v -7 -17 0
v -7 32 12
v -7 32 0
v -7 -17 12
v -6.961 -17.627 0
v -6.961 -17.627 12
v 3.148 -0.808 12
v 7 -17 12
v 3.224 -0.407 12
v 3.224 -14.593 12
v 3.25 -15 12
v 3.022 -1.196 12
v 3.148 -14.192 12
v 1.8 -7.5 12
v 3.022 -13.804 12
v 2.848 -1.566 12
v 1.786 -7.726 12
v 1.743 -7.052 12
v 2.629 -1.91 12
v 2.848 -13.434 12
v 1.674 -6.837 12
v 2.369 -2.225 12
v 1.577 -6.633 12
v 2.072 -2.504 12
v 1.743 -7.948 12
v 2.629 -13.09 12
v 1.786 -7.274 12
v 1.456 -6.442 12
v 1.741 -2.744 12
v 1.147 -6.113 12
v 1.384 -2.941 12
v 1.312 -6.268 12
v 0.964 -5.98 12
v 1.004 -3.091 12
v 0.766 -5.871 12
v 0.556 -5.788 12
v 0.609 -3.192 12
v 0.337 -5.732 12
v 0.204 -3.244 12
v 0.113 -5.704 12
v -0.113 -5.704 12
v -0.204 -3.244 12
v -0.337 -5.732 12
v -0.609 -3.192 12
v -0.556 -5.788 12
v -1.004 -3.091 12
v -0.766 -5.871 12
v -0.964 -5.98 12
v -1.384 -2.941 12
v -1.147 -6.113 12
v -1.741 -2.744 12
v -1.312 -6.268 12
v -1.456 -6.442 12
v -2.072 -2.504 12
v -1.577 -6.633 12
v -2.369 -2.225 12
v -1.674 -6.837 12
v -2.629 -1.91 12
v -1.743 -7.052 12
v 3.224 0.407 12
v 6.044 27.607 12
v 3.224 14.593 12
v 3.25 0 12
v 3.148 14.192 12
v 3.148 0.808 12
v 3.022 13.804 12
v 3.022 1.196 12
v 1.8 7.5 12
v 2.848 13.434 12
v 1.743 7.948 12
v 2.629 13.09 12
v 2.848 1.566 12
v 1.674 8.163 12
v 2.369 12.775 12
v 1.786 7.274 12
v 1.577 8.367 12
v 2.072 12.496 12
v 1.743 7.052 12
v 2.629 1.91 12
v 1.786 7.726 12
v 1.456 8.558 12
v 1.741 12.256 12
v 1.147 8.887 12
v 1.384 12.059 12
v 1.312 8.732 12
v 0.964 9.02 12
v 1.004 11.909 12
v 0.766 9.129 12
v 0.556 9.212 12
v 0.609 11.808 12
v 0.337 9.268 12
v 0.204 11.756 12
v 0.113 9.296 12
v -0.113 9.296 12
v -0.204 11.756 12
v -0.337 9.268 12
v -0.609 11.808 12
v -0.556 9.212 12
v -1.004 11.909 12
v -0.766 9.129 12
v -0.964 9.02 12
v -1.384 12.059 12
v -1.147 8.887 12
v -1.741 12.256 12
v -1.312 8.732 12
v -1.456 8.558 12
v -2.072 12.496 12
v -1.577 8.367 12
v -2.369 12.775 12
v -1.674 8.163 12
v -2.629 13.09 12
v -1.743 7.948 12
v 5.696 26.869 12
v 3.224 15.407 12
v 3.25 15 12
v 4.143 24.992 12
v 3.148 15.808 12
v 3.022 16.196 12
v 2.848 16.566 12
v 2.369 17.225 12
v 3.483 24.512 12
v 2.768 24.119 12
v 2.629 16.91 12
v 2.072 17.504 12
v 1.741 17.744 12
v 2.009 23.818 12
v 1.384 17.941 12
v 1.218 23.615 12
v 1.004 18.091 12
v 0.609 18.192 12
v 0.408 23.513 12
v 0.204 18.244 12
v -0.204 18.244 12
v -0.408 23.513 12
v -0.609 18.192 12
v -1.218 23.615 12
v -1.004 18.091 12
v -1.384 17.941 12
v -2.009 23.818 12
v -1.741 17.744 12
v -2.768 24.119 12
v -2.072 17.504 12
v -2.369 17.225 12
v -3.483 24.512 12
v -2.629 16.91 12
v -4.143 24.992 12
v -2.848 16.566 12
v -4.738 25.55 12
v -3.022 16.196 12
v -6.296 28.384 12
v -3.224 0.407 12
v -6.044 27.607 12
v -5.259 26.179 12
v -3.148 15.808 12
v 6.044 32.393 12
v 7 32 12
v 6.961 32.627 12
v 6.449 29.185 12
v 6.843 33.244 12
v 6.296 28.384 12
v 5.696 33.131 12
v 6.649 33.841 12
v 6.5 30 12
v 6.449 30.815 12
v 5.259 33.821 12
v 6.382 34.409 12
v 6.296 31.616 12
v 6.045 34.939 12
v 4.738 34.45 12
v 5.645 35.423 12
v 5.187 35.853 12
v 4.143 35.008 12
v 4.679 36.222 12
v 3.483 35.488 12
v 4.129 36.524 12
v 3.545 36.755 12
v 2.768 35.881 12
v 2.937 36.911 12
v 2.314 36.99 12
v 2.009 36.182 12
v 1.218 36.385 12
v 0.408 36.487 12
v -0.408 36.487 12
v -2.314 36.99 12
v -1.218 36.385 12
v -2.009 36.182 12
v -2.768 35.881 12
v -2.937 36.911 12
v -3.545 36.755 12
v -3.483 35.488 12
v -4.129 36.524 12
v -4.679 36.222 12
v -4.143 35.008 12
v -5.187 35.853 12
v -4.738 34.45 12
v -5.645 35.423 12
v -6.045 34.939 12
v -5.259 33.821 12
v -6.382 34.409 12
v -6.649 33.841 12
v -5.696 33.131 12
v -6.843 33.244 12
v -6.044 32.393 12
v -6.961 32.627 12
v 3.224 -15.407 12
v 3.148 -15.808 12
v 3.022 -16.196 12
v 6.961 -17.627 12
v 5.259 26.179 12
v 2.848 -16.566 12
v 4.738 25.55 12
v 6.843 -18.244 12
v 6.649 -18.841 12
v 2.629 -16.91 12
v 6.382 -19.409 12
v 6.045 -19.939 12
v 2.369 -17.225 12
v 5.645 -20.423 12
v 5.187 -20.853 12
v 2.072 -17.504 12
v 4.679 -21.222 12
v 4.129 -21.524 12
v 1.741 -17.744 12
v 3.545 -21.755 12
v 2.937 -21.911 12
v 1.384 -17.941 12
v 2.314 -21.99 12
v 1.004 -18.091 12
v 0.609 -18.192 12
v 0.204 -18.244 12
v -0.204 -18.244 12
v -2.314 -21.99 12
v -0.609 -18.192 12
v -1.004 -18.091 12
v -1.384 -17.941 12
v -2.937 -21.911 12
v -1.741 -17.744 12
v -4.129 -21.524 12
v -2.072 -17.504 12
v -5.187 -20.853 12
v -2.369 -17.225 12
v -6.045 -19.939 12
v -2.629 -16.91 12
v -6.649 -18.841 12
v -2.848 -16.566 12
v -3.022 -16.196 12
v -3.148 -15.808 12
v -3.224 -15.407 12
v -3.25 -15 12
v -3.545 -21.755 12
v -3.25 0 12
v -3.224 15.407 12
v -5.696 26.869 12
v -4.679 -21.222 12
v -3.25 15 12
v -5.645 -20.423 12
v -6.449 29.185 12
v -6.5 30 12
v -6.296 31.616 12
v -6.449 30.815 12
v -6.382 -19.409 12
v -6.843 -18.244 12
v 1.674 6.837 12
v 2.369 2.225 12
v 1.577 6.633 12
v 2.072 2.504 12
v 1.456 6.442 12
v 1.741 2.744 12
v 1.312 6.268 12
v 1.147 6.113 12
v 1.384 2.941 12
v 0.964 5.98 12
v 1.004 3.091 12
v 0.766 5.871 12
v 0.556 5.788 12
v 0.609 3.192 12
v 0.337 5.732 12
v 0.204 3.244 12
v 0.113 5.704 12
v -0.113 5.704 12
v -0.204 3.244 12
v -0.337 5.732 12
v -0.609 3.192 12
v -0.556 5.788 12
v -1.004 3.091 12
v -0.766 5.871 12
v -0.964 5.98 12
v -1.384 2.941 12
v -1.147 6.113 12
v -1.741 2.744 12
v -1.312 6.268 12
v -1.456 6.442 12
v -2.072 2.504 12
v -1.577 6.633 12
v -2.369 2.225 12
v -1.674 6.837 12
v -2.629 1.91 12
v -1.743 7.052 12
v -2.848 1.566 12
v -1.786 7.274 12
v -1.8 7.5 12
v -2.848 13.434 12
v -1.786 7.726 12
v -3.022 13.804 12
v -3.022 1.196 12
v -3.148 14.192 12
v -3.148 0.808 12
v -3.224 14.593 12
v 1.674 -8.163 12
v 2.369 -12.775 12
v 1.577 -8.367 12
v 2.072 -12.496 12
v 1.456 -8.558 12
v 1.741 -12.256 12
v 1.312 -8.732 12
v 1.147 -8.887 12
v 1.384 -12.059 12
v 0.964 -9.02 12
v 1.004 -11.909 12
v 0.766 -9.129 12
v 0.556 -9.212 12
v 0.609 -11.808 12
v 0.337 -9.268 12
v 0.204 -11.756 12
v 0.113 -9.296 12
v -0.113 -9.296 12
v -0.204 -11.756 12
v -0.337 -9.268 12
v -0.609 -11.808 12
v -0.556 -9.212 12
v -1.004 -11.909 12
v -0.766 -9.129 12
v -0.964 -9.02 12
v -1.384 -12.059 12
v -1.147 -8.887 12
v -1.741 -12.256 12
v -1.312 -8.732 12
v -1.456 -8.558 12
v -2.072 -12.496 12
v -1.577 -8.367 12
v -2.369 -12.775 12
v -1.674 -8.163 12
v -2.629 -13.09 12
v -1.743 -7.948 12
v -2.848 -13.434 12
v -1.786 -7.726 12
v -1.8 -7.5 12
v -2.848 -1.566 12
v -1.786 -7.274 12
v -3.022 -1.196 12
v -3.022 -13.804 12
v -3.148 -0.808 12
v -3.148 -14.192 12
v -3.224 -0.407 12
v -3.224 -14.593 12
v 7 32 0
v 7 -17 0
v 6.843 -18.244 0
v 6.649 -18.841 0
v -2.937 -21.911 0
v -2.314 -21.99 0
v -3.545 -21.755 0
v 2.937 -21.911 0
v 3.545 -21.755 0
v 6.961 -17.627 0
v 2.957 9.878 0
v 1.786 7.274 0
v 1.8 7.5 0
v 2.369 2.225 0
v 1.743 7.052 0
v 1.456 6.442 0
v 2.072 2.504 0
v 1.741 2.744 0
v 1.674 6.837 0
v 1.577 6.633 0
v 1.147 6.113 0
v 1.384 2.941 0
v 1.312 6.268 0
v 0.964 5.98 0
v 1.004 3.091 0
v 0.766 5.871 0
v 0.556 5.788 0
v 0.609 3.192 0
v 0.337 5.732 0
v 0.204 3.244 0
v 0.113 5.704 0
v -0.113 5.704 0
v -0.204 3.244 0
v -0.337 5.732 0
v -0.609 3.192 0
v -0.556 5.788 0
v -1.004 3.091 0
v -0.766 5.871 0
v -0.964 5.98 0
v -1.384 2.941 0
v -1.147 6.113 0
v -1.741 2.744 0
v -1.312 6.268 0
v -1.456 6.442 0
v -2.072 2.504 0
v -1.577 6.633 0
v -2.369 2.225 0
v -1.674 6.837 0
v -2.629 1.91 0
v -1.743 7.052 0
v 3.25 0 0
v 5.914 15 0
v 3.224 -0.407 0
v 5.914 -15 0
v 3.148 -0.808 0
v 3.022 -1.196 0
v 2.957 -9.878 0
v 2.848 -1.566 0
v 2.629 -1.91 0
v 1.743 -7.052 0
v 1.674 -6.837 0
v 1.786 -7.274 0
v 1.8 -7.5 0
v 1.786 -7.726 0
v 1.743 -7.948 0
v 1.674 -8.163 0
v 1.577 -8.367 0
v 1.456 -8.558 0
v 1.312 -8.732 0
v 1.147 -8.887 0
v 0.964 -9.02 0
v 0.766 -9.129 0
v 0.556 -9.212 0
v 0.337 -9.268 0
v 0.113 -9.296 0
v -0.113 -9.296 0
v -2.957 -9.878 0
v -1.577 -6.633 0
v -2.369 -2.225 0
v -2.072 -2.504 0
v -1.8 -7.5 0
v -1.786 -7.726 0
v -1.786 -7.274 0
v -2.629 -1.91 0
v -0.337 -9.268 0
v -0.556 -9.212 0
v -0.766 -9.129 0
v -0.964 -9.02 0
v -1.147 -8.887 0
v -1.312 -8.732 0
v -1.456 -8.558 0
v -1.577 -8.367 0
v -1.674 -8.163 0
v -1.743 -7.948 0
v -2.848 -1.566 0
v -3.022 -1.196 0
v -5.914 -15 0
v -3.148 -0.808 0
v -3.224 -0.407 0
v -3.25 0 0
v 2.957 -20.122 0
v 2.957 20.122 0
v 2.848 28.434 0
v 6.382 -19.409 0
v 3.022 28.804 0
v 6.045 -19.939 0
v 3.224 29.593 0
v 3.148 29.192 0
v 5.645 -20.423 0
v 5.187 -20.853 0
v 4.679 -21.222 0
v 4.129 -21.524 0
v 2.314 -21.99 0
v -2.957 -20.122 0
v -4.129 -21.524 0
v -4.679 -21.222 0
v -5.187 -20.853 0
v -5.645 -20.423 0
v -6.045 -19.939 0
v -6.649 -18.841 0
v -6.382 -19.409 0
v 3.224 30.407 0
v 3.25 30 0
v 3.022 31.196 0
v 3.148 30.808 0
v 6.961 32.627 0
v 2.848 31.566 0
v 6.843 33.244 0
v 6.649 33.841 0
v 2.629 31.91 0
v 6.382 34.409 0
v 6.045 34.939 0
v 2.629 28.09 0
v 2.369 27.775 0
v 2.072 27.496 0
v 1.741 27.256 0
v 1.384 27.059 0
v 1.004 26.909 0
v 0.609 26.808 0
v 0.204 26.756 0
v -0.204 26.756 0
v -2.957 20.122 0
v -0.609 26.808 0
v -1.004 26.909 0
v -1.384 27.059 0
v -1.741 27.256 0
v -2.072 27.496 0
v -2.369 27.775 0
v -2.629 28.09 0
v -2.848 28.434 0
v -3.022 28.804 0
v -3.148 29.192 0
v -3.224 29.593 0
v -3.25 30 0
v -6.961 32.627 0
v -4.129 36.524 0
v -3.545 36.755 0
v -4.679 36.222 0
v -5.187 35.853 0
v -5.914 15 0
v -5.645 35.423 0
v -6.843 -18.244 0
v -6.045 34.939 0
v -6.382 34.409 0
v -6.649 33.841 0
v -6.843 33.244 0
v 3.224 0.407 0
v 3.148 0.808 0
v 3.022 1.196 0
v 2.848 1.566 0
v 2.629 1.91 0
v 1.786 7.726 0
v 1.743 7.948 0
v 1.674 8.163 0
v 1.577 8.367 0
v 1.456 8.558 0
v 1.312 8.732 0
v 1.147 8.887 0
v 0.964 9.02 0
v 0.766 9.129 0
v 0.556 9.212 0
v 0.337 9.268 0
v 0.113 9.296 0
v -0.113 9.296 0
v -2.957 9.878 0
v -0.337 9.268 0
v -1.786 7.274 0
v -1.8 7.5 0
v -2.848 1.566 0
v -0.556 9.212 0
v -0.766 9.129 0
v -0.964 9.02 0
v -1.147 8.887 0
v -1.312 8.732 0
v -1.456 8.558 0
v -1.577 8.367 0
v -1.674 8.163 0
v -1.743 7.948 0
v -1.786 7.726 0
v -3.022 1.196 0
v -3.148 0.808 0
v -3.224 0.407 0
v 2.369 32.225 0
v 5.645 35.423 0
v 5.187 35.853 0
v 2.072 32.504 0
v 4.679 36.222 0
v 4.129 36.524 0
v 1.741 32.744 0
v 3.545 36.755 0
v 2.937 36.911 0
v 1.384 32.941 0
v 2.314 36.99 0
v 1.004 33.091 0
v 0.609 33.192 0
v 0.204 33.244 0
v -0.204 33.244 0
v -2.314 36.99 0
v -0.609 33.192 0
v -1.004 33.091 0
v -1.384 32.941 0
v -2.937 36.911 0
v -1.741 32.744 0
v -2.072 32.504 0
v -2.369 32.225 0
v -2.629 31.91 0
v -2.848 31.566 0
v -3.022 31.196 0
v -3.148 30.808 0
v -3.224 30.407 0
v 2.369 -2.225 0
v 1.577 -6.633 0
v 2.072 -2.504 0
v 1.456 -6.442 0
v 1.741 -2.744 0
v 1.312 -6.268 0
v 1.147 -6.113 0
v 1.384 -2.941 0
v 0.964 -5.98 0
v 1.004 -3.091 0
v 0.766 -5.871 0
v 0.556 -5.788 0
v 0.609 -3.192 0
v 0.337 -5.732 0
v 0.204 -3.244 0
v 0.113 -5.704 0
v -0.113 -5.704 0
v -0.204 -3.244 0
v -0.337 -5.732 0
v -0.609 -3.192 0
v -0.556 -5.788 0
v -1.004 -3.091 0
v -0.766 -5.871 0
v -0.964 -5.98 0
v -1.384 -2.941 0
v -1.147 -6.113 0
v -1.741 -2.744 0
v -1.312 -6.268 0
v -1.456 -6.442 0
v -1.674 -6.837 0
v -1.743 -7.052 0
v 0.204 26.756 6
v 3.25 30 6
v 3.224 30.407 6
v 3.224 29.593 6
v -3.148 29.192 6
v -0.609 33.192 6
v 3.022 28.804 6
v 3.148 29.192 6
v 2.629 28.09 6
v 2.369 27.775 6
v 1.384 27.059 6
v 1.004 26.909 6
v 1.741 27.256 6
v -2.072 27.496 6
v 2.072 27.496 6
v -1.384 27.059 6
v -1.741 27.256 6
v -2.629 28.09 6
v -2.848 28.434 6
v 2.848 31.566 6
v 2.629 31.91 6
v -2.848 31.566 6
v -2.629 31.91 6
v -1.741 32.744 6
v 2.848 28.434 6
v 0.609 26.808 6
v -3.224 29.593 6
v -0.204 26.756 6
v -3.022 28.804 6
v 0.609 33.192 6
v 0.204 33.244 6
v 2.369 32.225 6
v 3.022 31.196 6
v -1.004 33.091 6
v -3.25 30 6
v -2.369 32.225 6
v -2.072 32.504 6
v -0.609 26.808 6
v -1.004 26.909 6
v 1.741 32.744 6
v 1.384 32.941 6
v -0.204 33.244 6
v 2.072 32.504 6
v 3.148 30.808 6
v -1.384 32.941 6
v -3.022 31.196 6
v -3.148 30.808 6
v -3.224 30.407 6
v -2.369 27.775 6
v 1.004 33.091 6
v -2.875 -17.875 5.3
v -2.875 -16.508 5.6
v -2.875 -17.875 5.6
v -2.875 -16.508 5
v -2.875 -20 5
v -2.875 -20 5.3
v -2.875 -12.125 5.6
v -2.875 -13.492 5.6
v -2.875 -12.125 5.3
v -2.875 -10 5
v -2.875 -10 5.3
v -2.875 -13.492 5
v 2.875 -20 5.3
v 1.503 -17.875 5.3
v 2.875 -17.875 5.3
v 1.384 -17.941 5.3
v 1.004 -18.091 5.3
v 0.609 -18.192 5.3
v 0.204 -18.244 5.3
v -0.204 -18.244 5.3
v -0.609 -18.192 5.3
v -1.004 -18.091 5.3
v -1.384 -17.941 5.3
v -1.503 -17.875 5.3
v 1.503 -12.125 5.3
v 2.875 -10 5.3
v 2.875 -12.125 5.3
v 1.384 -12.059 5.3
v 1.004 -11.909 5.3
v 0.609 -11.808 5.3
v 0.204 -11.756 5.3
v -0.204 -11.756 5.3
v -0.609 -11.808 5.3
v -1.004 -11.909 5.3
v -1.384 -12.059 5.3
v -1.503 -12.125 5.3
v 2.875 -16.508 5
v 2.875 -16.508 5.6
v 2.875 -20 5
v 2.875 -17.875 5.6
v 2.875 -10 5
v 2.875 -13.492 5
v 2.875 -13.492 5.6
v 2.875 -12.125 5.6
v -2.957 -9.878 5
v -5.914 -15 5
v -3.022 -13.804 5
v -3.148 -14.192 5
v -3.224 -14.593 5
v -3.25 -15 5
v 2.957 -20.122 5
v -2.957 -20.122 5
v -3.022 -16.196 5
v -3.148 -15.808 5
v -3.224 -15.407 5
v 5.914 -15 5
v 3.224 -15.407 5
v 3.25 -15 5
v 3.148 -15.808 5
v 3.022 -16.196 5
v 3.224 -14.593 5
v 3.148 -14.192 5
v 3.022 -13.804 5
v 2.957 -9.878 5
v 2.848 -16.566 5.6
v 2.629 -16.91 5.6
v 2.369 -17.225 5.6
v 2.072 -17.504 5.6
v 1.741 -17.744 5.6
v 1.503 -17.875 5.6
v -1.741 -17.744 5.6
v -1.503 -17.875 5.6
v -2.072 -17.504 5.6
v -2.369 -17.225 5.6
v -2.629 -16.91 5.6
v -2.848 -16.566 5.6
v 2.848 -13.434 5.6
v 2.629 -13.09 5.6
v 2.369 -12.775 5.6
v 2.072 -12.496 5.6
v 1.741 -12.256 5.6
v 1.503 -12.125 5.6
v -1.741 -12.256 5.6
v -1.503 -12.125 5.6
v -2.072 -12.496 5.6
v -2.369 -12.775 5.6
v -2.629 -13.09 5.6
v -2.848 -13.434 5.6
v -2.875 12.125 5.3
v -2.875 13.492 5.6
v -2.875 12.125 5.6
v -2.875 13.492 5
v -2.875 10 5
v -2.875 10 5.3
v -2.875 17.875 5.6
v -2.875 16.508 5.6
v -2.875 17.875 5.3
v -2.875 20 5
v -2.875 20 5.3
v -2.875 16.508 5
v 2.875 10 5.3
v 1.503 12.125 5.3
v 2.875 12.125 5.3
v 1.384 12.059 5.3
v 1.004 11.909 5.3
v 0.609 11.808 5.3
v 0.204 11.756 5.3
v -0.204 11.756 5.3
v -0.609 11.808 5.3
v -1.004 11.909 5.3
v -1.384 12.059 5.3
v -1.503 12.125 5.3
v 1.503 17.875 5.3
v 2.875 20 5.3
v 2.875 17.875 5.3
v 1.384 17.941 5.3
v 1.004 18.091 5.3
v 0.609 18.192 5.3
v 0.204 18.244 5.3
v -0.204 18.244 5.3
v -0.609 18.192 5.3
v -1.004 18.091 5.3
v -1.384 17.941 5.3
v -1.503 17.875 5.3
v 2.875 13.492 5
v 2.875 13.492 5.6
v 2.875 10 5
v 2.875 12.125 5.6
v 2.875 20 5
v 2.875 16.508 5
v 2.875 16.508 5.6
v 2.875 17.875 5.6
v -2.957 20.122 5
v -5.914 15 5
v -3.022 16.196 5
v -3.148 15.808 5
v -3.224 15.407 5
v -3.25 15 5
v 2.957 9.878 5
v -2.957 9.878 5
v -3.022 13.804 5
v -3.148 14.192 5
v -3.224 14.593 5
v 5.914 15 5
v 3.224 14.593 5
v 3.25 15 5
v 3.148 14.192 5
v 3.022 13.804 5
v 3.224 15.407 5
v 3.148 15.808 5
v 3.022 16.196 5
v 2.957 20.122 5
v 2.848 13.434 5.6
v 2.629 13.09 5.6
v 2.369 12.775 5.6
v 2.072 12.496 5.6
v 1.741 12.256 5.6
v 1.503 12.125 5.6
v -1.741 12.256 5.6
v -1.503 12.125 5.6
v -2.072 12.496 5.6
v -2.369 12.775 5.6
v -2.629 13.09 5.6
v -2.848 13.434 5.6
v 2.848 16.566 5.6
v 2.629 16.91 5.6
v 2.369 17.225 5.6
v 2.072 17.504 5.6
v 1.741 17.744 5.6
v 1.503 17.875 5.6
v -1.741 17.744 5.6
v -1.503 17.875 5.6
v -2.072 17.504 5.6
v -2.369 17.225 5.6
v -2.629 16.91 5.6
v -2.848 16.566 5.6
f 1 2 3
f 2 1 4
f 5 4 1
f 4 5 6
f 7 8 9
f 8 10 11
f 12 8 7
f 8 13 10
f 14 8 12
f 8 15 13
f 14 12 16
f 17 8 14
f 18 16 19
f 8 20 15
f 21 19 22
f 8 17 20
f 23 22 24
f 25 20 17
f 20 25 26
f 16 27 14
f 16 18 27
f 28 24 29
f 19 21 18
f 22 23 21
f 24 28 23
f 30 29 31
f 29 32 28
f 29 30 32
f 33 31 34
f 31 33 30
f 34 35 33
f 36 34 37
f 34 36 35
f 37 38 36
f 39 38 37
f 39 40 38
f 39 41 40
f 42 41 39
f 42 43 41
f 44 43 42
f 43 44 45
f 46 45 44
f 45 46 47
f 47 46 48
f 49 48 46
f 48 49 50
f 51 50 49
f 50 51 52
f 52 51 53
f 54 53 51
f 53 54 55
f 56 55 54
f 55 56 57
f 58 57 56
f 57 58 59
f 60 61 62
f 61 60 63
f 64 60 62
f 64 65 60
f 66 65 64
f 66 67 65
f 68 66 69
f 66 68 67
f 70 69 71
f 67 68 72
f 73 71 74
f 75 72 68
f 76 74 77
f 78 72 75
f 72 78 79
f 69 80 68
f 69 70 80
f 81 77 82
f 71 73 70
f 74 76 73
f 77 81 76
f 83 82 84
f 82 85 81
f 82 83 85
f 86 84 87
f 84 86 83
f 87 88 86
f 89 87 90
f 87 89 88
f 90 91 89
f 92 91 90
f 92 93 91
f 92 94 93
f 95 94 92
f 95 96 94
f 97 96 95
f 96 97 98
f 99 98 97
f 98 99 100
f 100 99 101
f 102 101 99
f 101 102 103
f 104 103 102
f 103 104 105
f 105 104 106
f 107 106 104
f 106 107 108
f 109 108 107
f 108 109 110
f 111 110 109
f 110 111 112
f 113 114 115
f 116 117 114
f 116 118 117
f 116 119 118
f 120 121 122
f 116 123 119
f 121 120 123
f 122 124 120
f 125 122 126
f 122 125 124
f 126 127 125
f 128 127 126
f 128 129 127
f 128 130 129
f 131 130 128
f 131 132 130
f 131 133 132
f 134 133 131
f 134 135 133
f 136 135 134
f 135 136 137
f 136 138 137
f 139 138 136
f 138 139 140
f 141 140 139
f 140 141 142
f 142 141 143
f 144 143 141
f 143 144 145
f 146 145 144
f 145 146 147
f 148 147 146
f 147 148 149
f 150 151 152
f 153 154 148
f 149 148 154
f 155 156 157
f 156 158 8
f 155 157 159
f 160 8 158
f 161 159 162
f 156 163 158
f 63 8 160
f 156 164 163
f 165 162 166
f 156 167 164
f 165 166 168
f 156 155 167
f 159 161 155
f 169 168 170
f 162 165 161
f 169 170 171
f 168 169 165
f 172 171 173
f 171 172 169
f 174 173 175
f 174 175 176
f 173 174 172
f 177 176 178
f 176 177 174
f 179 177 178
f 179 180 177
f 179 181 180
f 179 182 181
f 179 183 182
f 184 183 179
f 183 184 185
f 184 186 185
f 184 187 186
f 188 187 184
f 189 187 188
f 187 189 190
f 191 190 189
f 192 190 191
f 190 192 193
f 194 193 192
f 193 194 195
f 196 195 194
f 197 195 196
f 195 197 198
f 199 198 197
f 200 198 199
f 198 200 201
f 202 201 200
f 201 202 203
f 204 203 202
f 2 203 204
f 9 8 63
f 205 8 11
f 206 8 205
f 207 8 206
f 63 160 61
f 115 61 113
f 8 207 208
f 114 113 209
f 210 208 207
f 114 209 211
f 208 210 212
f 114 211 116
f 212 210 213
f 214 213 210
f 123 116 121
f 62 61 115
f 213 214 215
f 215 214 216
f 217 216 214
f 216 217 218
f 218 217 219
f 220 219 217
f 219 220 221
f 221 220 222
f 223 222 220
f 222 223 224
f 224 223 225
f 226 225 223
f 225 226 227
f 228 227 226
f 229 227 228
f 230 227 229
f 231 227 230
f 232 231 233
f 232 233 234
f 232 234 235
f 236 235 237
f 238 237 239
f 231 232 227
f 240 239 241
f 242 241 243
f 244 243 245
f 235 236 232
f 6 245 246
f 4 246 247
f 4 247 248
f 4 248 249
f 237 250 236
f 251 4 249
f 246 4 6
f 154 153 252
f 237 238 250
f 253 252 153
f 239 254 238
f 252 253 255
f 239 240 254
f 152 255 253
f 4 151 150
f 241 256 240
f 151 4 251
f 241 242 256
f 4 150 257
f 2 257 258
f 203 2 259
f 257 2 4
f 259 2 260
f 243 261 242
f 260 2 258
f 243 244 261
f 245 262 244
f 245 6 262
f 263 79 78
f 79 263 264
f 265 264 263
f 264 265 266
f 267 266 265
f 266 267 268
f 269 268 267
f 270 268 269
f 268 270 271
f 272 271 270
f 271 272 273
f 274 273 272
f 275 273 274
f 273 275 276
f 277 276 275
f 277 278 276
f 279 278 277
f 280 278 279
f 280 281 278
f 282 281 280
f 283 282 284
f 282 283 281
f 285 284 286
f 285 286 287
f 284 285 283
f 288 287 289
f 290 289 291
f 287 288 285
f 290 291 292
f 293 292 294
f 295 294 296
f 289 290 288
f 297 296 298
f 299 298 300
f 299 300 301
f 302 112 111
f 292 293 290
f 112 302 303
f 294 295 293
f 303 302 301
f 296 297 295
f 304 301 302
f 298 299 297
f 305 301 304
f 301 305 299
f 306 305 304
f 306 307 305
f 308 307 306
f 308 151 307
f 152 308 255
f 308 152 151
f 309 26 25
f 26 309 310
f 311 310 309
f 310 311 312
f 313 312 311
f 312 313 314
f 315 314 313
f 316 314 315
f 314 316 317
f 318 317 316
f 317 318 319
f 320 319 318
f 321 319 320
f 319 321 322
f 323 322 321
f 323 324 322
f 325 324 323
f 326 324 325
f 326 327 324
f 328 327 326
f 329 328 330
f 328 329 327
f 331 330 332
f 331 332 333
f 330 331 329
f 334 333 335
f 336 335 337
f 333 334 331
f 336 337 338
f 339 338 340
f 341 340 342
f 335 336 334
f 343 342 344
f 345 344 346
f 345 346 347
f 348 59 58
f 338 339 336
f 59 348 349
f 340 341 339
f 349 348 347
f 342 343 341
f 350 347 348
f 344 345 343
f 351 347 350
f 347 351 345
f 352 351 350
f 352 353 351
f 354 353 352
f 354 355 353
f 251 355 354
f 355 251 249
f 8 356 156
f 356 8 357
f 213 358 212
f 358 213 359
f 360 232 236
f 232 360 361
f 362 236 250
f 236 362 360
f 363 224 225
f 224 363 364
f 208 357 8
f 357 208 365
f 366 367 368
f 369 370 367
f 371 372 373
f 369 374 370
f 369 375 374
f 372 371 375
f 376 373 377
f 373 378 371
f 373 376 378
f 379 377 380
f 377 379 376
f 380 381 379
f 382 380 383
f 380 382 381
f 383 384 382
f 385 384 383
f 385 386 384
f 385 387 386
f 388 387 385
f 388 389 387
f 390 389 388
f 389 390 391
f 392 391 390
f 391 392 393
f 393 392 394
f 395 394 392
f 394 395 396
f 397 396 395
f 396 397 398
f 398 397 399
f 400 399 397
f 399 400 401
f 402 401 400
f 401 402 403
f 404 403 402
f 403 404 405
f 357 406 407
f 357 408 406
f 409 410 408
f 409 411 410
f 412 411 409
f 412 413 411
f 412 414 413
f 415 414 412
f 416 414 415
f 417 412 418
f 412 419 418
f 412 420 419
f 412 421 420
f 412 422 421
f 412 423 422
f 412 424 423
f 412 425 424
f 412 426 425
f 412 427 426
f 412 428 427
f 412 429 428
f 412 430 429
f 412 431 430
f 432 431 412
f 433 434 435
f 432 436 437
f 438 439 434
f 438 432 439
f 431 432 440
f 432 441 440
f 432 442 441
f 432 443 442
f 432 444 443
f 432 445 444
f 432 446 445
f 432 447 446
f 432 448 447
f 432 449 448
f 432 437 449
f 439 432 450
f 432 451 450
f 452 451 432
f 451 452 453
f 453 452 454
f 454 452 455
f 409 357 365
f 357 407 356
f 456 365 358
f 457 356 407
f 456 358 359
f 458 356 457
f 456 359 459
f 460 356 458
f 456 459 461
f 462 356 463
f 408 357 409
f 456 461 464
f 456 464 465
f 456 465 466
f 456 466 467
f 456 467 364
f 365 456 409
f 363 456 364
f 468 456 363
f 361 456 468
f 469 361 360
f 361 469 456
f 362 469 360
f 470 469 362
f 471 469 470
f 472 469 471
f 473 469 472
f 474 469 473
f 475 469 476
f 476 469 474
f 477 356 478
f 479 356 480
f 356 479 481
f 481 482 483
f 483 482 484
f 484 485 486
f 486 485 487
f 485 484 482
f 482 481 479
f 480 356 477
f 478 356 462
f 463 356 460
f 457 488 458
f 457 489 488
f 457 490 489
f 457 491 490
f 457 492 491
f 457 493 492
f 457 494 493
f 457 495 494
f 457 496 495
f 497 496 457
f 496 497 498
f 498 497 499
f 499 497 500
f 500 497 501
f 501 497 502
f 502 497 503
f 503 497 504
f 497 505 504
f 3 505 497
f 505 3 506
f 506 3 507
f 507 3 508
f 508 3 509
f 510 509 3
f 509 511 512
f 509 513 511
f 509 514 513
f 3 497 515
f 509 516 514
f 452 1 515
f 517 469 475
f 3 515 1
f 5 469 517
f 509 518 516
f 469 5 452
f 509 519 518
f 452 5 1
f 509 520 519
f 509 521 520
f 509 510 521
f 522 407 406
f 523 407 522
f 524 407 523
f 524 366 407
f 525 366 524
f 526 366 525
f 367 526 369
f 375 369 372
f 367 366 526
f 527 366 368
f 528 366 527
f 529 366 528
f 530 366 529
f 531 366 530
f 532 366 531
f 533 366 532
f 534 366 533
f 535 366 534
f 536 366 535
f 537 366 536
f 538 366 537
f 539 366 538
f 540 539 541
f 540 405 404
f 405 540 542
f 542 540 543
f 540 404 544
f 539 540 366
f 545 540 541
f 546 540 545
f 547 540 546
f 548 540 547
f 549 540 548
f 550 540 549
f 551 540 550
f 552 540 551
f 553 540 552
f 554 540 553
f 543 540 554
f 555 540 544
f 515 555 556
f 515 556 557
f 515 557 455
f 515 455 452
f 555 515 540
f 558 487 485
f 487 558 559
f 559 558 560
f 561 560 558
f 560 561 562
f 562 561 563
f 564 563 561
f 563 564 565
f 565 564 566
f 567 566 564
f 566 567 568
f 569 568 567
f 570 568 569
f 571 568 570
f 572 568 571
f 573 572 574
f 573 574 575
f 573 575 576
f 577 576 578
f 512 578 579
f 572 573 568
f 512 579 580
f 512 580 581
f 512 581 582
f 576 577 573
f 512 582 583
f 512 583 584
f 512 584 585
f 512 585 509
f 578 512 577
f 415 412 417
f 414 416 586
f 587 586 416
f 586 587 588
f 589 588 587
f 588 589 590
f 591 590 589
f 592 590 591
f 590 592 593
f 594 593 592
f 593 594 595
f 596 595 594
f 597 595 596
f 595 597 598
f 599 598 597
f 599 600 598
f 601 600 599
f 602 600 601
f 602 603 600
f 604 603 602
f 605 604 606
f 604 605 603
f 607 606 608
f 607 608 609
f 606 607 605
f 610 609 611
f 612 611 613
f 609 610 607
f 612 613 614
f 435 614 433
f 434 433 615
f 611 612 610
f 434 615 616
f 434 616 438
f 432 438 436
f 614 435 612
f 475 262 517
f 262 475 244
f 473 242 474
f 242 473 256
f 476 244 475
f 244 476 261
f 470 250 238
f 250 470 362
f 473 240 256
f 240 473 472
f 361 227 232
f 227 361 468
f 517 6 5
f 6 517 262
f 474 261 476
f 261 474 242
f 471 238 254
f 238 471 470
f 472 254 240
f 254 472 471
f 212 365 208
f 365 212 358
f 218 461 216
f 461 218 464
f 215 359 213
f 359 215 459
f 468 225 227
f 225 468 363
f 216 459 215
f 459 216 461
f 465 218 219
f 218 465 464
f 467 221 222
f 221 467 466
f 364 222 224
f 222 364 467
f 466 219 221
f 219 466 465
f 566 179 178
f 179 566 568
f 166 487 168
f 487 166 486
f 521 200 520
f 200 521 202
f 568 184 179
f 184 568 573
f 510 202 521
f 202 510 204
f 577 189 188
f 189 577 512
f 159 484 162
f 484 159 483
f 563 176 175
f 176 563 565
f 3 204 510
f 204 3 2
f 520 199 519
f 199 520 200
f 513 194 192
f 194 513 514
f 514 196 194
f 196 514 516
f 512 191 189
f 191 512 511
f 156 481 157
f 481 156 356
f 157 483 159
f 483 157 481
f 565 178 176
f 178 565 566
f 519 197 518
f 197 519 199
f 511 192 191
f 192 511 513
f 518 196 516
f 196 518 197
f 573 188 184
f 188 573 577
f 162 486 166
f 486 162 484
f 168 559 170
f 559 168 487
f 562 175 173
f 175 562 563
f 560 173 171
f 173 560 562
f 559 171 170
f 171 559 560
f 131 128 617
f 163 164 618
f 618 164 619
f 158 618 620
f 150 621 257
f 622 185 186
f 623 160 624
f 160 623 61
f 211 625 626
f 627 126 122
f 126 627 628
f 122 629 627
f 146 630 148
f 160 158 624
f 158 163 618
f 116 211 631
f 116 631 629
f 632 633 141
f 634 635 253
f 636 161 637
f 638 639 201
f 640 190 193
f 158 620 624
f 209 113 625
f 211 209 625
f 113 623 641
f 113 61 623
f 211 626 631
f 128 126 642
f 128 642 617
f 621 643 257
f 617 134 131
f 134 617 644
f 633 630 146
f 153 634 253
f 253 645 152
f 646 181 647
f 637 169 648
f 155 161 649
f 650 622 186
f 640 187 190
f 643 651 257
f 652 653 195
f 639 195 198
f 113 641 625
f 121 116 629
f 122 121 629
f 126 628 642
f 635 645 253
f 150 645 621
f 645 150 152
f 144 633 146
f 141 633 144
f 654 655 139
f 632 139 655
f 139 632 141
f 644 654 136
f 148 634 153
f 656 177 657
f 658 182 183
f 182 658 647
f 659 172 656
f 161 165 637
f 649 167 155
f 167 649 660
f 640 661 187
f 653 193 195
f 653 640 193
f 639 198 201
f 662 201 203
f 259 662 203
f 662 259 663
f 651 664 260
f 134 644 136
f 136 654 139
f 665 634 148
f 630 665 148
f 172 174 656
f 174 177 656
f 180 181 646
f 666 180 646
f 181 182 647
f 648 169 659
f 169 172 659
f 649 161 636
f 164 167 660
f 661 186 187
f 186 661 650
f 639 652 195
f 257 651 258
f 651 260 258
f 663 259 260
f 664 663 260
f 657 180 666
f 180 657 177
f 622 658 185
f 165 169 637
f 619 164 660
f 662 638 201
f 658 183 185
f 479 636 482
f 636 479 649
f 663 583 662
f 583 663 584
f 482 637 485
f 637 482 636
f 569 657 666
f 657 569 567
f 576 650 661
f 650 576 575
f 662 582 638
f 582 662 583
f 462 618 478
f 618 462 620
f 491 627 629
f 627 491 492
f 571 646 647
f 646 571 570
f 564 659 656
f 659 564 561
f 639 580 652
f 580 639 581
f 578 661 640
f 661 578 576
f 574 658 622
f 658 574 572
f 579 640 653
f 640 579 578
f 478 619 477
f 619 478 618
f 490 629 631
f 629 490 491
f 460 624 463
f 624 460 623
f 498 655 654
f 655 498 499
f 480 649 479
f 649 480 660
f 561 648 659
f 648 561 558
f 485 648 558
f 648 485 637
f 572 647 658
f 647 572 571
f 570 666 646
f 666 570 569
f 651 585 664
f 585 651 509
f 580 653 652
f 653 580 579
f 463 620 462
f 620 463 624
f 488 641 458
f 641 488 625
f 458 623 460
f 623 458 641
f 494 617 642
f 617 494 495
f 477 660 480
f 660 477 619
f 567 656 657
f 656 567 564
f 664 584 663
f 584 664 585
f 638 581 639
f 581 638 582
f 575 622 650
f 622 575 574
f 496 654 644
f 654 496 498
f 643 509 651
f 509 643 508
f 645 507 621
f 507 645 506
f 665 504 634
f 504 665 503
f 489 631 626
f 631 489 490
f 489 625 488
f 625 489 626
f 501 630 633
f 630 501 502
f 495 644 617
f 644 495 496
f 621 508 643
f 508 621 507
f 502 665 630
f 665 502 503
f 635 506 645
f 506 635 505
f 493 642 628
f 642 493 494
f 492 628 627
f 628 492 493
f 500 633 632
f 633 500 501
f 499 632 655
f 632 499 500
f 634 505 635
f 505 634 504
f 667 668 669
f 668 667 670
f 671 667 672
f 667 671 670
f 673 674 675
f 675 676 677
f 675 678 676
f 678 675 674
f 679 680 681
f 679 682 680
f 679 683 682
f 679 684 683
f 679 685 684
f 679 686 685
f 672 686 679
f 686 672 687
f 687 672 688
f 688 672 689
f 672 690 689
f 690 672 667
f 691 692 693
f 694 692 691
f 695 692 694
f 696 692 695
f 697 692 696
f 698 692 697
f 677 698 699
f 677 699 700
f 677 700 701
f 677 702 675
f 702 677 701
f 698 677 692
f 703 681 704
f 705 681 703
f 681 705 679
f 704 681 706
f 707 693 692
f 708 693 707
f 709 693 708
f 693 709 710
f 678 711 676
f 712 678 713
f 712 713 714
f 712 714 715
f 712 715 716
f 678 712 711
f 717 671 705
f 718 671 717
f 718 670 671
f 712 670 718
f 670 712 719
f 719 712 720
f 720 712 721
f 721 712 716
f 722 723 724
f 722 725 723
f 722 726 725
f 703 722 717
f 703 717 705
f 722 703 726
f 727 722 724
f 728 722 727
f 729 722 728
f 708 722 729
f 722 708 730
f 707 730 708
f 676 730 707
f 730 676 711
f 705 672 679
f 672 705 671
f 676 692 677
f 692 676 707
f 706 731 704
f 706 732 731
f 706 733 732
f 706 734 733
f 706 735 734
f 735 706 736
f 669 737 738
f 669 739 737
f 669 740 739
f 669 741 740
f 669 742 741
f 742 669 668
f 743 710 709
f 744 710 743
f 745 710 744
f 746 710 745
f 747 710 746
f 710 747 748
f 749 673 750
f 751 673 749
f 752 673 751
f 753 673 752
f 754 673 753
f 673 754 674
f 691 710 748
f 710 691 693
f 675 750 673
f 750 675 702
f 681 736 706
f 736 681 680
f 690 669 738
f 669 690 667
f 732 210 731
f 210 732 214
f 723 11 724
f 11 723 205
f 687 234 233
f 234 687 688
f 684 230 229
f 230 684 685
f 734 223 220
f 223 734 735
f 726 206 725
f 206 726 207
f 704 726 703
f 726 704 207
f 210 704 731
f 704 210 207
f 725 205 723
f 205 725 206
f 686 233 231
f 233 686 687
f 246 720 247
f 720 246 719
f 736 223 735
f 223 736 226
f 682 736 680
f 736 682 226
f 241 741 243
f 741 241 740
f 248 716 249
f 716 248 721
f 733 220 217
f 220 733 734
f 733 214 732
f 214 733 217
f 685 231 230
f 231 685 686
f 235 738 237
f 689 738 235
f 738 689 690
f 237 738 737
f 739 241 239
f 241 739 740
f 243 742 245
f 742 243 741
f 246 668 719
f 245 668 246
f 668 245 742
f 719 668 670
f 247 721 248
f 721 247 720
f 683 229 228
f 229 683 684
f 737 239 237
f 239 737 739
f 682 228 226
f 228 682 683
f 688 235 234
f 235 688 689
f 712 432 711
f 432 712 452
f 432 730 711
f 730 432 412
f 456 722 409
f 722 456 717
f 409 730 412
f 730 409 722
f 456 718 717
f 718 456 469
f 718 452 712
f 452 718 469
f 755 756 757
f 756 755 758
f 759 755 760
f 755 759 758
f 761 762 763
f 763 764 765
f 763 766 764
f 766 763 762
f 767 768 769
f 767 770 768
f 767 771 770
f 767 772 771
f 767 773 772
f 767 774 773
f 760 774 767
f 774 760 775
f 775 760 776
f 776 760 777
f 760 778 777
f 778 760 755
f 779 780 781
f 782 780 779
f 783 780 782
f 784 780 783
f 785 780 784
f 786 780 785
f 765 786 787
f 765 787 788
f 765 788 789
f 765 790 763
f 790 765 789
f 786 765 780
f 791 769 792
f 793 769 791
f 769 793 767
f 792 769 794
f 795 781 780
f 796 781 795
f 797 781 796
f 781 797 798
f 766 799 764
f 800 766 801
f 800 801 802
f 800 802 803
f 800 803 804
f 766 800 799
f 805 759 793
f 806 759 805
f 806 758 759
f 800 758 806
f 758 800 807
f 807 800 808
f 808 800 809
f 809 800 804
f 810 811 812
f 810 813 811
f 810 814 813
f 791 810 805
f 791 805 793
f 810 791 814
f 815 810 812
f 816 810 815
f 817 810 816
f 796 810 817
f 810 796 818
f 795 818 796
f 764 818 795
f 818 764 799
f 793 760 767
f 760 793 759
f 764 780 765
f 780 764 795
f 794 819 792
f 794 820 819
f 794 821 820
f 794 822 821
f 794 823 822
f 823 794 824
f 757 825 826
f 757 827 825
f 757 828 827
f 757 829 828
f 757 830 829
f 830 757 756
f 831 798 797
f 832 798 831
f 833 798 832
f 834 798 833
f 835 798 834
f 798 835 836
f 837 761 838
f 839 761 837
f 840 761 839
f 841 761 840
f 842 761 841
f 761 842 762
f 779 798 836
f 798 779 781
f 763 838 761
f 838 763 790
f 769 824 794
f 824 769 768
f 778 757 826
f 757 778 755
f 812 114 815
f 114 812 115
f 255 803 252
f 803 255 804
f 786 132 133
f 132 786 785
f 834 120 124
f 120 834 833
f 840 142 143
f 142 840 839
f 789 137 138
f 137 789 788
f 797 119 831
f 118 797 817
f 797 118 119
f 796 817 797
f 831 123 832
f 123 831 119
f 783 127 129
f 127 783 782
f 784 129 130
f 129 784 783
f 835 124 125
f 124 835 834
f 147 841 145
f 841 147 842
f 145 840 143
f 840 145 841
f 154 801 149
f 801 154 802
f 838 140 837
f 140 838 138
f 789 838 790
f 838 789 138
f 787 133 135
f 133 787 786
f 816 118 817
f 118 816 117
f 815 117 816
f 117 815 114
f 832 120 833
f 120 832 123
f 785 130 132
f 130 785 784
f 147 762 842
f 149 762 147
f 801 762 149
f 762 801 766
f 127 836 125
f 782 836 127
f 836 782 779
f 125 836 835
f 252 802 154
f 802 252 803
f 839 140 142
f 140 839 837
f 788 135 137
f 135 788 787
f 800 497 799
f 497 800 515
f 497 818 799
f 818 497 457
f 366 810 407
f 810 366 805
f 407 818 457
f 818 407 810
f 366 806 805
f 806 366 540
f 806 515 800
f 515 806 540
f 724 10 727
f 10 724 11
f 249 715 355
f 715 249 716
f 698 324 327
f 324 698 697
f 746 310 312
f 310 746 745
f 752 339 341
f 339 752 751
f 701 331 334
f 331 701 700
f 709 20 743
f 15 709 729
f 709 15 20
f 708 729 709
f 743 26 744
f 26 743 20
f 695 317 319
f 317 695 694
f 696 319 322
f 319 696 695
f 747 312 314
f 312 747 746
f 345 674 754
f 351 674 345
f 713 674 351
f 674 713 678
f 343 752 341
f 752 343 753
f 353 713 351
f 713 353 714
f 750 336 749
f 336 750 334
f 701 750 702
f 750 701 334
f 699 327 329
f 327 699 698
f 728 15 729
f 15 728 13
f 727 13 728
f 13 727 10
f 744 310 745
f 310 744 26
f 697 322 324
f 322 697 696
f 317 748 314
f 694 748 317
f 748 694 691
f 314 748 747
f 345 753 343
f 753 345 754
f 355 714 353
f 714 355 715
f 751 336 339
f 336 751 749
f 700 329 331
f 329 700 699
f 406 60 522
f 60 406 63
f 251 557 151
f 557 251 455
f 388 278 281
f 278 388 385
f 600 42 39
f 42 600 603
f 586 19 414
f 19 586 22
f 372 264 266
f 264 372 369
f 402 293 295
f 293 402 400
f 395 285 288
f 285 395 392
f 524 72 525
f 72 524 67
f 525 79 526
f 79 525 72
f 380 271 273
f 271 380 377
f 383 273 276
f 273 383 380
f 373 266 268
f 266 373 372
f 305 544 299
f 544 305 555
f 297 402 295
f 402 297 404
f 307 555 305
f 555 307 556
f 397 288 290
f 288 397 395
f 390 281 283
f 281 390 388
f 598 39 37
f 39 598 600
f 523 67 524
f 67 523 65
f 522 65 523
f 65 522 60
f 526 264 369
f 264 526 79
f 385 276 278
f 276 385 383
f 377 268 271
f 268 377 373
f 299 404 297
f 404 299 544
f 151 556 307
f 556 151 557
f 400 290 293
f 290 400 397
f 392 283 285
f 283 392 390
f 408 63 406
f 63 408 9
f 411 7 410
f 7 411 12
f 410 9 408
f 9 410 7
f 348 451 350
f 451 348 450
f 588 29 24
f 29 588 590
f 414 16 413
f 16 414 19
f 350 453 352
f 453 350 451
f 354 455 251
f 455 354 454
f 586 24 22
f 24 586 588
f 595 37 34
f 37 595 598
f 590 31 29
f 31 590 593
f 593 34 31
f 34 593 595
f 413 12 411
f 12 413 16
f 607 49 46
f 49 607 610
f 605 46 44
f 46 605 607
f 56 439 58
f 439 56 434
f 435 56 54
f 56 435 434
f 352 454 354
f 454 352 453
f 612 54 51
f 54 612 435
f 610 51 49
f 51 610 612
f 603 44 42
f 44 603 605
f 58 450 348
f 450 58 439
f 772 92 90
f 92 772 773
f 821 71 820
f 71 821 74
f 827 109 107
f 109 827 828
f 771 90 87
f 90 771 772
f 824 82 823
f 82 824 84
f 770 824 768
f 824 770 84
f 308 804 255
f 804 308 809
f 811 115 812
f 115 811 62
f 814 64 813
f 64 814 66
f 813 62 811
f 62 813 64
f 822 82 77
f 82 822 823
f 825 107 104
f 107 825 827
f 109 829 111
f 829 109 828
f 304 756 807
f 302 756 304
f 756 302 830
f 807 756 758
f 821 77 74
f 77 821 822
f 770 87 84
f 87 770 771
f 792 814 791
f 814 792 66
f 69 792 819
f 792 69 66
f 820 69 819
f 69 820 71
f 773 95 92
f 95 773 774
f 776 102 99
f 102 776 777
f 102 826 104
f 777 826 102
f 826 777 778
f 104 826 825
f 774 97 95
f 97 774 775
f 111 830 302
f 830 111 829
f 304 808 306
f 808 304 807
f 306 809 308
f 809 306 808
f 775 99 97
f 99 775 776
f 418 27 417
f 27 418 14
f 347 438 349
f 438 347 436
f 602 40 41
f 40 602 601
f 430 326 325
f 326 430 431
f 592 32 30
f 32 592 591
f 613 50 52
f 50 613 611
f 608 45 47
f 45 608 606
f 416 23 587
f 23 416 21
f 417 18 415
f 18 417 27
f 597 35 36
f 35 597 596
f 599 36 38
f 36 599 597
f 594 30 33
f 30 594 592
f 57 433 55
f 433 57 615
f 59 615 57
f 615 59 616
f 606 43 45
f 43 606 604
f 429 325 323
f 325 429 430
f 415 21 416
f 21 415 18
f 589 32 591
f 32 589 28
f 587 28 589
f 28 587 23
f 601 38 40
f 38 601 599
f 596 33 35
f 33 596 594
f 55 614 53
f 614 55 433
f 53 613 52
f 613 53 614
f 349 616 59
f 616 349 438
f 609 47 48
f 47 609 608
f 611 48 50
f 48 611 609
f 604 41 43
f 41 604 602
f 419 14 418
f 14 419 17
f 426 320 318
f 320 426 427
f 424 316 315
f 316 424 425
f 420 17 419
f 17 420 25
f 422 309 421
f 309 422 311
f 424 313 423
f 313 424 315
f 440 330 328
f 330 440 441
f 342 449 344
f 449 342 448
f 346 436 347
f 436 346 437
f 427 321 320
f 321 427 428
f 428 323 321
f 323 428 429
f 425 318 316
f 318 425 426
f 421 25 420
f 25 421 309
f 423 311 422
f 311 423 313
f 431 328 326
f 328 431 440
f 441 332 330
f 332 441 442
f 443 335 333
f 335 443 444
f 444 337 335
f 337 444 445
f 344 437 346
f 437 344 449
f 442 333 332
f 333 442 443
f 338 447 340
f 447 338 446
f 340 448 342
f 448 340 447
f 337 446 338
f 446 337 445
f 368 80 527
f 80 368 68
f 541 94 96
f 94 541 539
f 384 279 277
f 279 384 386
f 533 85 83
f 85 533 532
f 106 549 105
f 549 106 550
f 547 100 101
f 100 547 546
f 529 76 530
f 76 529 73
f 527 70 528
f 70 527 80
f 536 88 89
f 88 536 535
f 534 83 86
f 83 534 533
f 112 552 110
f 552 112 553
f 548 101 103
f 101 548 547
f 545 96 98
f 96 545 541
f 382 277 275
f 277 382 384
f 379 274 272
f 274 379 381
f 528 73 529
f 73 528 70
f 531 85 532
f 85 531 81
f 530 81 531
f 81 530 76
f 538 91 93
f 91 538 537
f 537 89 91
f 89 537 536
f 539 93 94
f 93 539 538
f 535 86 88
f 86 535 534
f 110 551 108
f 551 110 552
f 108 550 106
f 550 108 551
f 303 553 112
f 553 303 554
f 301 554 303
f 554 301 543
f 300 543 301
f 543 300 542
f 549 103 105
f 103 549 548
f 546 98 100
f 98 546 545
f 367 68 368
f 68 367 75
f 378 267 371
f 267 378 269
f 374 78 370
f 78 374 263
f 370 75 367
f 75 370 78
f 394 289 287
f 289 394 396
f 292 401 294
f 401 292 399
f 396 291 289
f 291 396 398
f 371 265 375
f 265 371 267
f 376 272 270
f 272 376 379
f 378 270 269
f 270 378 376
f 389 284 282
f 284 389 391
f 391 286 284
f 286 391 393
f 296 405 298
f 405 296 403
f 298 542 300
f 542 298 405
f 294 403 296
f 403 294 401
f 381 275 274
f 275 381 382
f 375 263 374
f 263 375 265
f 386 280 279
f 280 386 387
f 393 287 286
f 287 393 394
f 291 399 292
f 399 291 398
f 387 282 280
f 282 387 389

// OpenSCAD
$fn = 50;


difference() {
	union() {
		hull() {
			translate(v = [-2.0000000000, 17.0000000000, 0]) {
				cylinder(h = 12, r = 5);
			}
			translate(v = [2.0000000000, 17.0000000000, 0]) {
				cylinder(h = 12, r = 5);
			}
			translate(v = [-2.0000000000, -17.0000000000, 0]) {
				cylinder(h = 12, r = 5);
			}
			translate(v = [2.0000000000, -17.0000000000, 0]) {
				cylinder(h = 12, r = 5);
			}
		}
		translate(v = [0.0000000000, 22.5000000000, 0]) {
			hull() {
				translate(v = [-2.0000000000, 9.5000000000, 0]) {
					cylinder(h = 12, r = 5);
				}
				translate(v = [2.0000000000, 9.5000000000, 0]) {
					cylinder(h = 12, r = 5);
				}
				translate(v = [-2.0000000000, -9.5000000000, 0]) {
					cylinder(h = 12, r = 5);
				}
				translate(v = [2.0000000000, -9.5000000000, 0]) {
					cylinder(h = 12, r = 5);
				}
			}
		}
		translate(v = [0.0000000000, 22.5000000000, 0]) {
			hull() {
				translate(v = [-2.0000000000, 9.5000000000, 0]) {
					cylinder(h = 12, r = 5);
				}
				translate(v = [2.0000000000, 9.5000000000, 0]) {
					cylinder(h = 12, r = 5);
				}
				translate(v = [-2.0000000000, -9.5000000000, 0]) {
					cylinder(h = 12, r = 5);
				}
				translate(v = [2.0000000000, -9.5000000000, 0]) {
					cylinder(h = 12, r = 5);
				}
			}
		}
	}
	union() {
		translate(v = [0.0000000000, 30.0000000000, 12]) {
			rotate(a = [0, 0, 0]) {
				difference() {
					union() {
						#translate(v = [0, 0, -12.0000000000]) {
							cylinder(h = 12, r = 2.2500000000);
						}
						#translate(v = [0, 0, -6]) {
							cylinder(h = 6, r1 = 3.2500000000, r2 = 6.5000000000);
						}
						#translate(v = [0, 0, -12.0000000000]) {
							cylinder(h = 12, r = 3.2500000000);
						}
						#translate(v = [0, 0, -12.0000000000]) {
							cylinder(h = 12, r = 2.2500000000);
						}
					}
					union();
				}
			}
		}
		translate(v = [0.0000000000, 30.0000000000, 12]) {
			rotate(a = [0, 0, 0]) {
				difference() {
					union() {
						#translate(v = [0, 0, -12.0000000000]) {
							cylinder(h = 12, r = 2.2500000000);
						}
						#translate(v = [0, 0, -6]) {
							cylinder(h = 6, r1 = 3.2500000000, r2 = 6.5000000000);
						}
						#translate(v = [0, 0, -12.0000000000]) {
							cylinder(h = 12, r = 3.2500000000);
						}
						#translate(v = [0, 0, -12.0000000000]) {
							cylinder(h = 12, r = 2.2500000000);
						}
					}
					union();
				}
			}
		}
		translate(v = [0.0000000000, -15.0000000000, 0]) {
			rotate(a = [0, 0, 0]) {
				difference() {
					union() {
						#translate(v = [-2.8750000000, -5.0000000000, -0.3000000000]) {
							cube(size = [5.7500000000, 10, 0.3000000000]);
						}
						#translate(v = [-2.8750000000, -2.8750000000, -0.6000000000]) {
							cube(size = [5.7500000000, 5.7500000000, 0.3000000000]);
						}
						#translate(v = [-2.8750000000, -5.0000000000, 5]) {
							cube(size = [5.7500000000, 10, 0.3000000000]);
						}
						#translate(v = [-2.8750000000, -2.8750000000, 5.3000000000]) {
							cube(size = [5.7500000000, 5.7500000000, 0.3000000000]);
						}
						#translate(v = [0, 0, -100.0000000000]) {
							cylinder(h = 200, r = 3.2500000000);
						}
						#linear_extrude(height = 5) {
							polygon(points = [[5.9142500000, 0.0000000000], [2.9571250000, 5.1218907443], [-2.9571250000, 5.1218907443], [-5.9142500000, 0.0000000000], [-2.9571250000, -5.1218907443], [2.9571250000, -5.1218907443]]);
						}
						#translate(v = [-2.8750000000, -5.0000000000, -0.3000000000]) {
							cube(size = [5.7500000000, 10, 0.3000000000]);
						}
						#translate(v = [-2.8750000000, -2.8750000000, -0.6000000000]) {
							cube(size = [5.7500000000, 5.7500000000, 0.3000000000]);
						}
						#translate(v = [-2.8750000000, -5.0000000000, 5]) {
							cube(size = [5.7500000000, 10, 0.3000000000]);
						}
						#translate(v = [-2.8750000000, -2.8750000000, 5.3000000000]) {
							cube(size = [5.7500000000, 5.7500000000, 0.3000000000]);
						}
						#translate(v = [0, 0, -100.0000000000]) {
							cylinder(h = 200, r = 3.2500000000);
						}
						#translate(v = [-2.8750000000, -5.0000000000, -0.3000000000]) {
							cube(size = [5.7500000000, 10, 0.3000000000]);
						}
						#translate(v = [-2.8750000000, -2.8750000000, -0.6000000000]) {
							cube(size = [5.7500000000, 5.7500000000, 0.3000000000]);
						}
						#translate(v = [-2.8750000000, -5.0000000000, 5]) {
							cube(size = [5.7500000000, 10, 0.3000000000]);
						}
						#translate(v = [-2.8750000000, -2.8750000000, 5.3000000000]) {
							cube(size = [5.7500000000, 5.7500000000, 0.3000000000]);
						}
						#translate(v = [0, 0, -100.0000000000]) {
							cylinder(h = 200, r = 3.2500000000);
						}
					}
					union();
				}
			}
		}
		translate(v = [0.0000000000, 15.0000000000, 0]) {
			rotate(a = [0, 0, 0]) {
				difference() {
					union() {
						#translate(v = [-2.8750000000, -5.0000000000, -0.3000000000]) {
							cube(size = [5.7500000000, 10, 0.3000000000]);
						}
						#translate(v = [-2.8750000000, -2.8750000000, -0.6000000000]) {
							cube(size = [5.7500000000, 5.7500000000, 0.3000000000]);
						}
						#translate(v = [-2.8750000000, -5.0000000000, 5]) {
							cube(size = [5.7500000000, 10, 0.3000000000]);
						}
						#translate(v = [-2.8750000000, -2.8750000000, 5.3000000000]) {
							cube(size = [5.7500000000, 5.7500000000, 0.3000000000]);
						}
						#translate(v = [0, 0, -100.0000000000]) {
							cylinder(h = 200, r = 3.2500000000);
						}
						#linear_extrude(height = 5) {
							polygon(points = [[5.9142500000, 0.0000000000], [2.9571250000, 5.1218907443], [-2.9571250000, 5.1218907443], [-5.9142500000, 0.0000000000], [-2.9571250000, -5.1218907443], [2.9571250000, -5.1218907443]]);
						}
						#translate(v = [-2.8750000000, -5.0000000000, -0.3000000000]) {
							cube(size = [5.7500000000, 10, 0.3000000000]);
						}
						#translate(v = [-2.8750000000, -2.8750000000, -0.6000000000]) {
							cube(size = [5.7500000000, 5.7500000000, 0.3000000000]);
						}
						#translate(v = [-2.8750000000, -5.0000000000, 5]) {
							cube(size = [5.7500000000, 10, 0.3000000000]);
						}
						#translate(v = [-2.8750000000, -2.8750000000, 5.3000000000]) {
							cube(size = [5.7500000000, 5.7500000000, 0.3000000000]);
						}
						#translate(v = [0, 0, -100.0000000000]) {
							cylinder(h = 200, r = 3.2500000000);
						}
						#translate(v = [-2.8750000000, -5.0000000000, -0.3000000000]) {
							cube(size = [5.7500000000, 10, 0.3000000000]);
						}
						#translate(v = [-2.8750000000, -2.8750000000, -0.6000000000]) {
							cube(size = [5.7500000000, 5.7500000000, 0.3000000000]);
						}
						#translate(v = [-2.8750000000, -5.0000000000, 5]) {
							cube(size = [5.7500000000, 10, 0.3000000000]);
						}
						#translate(v = [-2.8750000000, -2.8750000000, 5.3000000000]) {
							cube(size = [5.7500000000, 5.7500000000, 0.3000000000]);
						}
						#translate(v = [0, 0, -100.0000000000]) {
							cylinder(h = 200, r = 3.2500000000);
						}
					}
					union();
				}
			}
		}
		translate(v = [0.0000000000, -15.0000000000, 0]) {
			translate(v = [0, 0, -100]) {
				cylinder(h = 200, r = 3.2500000000);
			}
		}
		translate(v = [0, 0, -100]) {
			cylinder(h = 200, r = 3.2500000000);
		}
		translate(v = [0.0000000000, 15.0000000000, 0]) {
			translate(v = [0, 0, -100]) {
				cylinder(h = 200, r = 3.2500000000);
			}
		}
		translate(v = [0.0000000000, -15.0000000000, 0]) {
			translate(v = [0, 0, -100]) {
				cylinder(h = 200, r = 1.8000000000);
			}
		}
		translate(v = [0.0000000000, -7.5000000000, 0]) {
			translate(v = [0, 0, -100]) {
				cylinder(h = 200, r = 1.8000000000);
			}
		}
		translate(v = [0, 0, -100]) {
			cylinder(h = 200, r = 1.8000000000);
		}
		translate(v = [0.0000000000, 7.5000000000, 0]) {
			translate(v = [0, 0, -100]) {
				cylinder(h = 200, r = 1.8000000000);
			}
		}
		translate(v = [0.0000000000, 15.0000000000, 0]) {
			translate(v = [0, 0, -100]) {
				cylinder(h = 200, r = 1.8000000000);
			}
		}
	}
}
